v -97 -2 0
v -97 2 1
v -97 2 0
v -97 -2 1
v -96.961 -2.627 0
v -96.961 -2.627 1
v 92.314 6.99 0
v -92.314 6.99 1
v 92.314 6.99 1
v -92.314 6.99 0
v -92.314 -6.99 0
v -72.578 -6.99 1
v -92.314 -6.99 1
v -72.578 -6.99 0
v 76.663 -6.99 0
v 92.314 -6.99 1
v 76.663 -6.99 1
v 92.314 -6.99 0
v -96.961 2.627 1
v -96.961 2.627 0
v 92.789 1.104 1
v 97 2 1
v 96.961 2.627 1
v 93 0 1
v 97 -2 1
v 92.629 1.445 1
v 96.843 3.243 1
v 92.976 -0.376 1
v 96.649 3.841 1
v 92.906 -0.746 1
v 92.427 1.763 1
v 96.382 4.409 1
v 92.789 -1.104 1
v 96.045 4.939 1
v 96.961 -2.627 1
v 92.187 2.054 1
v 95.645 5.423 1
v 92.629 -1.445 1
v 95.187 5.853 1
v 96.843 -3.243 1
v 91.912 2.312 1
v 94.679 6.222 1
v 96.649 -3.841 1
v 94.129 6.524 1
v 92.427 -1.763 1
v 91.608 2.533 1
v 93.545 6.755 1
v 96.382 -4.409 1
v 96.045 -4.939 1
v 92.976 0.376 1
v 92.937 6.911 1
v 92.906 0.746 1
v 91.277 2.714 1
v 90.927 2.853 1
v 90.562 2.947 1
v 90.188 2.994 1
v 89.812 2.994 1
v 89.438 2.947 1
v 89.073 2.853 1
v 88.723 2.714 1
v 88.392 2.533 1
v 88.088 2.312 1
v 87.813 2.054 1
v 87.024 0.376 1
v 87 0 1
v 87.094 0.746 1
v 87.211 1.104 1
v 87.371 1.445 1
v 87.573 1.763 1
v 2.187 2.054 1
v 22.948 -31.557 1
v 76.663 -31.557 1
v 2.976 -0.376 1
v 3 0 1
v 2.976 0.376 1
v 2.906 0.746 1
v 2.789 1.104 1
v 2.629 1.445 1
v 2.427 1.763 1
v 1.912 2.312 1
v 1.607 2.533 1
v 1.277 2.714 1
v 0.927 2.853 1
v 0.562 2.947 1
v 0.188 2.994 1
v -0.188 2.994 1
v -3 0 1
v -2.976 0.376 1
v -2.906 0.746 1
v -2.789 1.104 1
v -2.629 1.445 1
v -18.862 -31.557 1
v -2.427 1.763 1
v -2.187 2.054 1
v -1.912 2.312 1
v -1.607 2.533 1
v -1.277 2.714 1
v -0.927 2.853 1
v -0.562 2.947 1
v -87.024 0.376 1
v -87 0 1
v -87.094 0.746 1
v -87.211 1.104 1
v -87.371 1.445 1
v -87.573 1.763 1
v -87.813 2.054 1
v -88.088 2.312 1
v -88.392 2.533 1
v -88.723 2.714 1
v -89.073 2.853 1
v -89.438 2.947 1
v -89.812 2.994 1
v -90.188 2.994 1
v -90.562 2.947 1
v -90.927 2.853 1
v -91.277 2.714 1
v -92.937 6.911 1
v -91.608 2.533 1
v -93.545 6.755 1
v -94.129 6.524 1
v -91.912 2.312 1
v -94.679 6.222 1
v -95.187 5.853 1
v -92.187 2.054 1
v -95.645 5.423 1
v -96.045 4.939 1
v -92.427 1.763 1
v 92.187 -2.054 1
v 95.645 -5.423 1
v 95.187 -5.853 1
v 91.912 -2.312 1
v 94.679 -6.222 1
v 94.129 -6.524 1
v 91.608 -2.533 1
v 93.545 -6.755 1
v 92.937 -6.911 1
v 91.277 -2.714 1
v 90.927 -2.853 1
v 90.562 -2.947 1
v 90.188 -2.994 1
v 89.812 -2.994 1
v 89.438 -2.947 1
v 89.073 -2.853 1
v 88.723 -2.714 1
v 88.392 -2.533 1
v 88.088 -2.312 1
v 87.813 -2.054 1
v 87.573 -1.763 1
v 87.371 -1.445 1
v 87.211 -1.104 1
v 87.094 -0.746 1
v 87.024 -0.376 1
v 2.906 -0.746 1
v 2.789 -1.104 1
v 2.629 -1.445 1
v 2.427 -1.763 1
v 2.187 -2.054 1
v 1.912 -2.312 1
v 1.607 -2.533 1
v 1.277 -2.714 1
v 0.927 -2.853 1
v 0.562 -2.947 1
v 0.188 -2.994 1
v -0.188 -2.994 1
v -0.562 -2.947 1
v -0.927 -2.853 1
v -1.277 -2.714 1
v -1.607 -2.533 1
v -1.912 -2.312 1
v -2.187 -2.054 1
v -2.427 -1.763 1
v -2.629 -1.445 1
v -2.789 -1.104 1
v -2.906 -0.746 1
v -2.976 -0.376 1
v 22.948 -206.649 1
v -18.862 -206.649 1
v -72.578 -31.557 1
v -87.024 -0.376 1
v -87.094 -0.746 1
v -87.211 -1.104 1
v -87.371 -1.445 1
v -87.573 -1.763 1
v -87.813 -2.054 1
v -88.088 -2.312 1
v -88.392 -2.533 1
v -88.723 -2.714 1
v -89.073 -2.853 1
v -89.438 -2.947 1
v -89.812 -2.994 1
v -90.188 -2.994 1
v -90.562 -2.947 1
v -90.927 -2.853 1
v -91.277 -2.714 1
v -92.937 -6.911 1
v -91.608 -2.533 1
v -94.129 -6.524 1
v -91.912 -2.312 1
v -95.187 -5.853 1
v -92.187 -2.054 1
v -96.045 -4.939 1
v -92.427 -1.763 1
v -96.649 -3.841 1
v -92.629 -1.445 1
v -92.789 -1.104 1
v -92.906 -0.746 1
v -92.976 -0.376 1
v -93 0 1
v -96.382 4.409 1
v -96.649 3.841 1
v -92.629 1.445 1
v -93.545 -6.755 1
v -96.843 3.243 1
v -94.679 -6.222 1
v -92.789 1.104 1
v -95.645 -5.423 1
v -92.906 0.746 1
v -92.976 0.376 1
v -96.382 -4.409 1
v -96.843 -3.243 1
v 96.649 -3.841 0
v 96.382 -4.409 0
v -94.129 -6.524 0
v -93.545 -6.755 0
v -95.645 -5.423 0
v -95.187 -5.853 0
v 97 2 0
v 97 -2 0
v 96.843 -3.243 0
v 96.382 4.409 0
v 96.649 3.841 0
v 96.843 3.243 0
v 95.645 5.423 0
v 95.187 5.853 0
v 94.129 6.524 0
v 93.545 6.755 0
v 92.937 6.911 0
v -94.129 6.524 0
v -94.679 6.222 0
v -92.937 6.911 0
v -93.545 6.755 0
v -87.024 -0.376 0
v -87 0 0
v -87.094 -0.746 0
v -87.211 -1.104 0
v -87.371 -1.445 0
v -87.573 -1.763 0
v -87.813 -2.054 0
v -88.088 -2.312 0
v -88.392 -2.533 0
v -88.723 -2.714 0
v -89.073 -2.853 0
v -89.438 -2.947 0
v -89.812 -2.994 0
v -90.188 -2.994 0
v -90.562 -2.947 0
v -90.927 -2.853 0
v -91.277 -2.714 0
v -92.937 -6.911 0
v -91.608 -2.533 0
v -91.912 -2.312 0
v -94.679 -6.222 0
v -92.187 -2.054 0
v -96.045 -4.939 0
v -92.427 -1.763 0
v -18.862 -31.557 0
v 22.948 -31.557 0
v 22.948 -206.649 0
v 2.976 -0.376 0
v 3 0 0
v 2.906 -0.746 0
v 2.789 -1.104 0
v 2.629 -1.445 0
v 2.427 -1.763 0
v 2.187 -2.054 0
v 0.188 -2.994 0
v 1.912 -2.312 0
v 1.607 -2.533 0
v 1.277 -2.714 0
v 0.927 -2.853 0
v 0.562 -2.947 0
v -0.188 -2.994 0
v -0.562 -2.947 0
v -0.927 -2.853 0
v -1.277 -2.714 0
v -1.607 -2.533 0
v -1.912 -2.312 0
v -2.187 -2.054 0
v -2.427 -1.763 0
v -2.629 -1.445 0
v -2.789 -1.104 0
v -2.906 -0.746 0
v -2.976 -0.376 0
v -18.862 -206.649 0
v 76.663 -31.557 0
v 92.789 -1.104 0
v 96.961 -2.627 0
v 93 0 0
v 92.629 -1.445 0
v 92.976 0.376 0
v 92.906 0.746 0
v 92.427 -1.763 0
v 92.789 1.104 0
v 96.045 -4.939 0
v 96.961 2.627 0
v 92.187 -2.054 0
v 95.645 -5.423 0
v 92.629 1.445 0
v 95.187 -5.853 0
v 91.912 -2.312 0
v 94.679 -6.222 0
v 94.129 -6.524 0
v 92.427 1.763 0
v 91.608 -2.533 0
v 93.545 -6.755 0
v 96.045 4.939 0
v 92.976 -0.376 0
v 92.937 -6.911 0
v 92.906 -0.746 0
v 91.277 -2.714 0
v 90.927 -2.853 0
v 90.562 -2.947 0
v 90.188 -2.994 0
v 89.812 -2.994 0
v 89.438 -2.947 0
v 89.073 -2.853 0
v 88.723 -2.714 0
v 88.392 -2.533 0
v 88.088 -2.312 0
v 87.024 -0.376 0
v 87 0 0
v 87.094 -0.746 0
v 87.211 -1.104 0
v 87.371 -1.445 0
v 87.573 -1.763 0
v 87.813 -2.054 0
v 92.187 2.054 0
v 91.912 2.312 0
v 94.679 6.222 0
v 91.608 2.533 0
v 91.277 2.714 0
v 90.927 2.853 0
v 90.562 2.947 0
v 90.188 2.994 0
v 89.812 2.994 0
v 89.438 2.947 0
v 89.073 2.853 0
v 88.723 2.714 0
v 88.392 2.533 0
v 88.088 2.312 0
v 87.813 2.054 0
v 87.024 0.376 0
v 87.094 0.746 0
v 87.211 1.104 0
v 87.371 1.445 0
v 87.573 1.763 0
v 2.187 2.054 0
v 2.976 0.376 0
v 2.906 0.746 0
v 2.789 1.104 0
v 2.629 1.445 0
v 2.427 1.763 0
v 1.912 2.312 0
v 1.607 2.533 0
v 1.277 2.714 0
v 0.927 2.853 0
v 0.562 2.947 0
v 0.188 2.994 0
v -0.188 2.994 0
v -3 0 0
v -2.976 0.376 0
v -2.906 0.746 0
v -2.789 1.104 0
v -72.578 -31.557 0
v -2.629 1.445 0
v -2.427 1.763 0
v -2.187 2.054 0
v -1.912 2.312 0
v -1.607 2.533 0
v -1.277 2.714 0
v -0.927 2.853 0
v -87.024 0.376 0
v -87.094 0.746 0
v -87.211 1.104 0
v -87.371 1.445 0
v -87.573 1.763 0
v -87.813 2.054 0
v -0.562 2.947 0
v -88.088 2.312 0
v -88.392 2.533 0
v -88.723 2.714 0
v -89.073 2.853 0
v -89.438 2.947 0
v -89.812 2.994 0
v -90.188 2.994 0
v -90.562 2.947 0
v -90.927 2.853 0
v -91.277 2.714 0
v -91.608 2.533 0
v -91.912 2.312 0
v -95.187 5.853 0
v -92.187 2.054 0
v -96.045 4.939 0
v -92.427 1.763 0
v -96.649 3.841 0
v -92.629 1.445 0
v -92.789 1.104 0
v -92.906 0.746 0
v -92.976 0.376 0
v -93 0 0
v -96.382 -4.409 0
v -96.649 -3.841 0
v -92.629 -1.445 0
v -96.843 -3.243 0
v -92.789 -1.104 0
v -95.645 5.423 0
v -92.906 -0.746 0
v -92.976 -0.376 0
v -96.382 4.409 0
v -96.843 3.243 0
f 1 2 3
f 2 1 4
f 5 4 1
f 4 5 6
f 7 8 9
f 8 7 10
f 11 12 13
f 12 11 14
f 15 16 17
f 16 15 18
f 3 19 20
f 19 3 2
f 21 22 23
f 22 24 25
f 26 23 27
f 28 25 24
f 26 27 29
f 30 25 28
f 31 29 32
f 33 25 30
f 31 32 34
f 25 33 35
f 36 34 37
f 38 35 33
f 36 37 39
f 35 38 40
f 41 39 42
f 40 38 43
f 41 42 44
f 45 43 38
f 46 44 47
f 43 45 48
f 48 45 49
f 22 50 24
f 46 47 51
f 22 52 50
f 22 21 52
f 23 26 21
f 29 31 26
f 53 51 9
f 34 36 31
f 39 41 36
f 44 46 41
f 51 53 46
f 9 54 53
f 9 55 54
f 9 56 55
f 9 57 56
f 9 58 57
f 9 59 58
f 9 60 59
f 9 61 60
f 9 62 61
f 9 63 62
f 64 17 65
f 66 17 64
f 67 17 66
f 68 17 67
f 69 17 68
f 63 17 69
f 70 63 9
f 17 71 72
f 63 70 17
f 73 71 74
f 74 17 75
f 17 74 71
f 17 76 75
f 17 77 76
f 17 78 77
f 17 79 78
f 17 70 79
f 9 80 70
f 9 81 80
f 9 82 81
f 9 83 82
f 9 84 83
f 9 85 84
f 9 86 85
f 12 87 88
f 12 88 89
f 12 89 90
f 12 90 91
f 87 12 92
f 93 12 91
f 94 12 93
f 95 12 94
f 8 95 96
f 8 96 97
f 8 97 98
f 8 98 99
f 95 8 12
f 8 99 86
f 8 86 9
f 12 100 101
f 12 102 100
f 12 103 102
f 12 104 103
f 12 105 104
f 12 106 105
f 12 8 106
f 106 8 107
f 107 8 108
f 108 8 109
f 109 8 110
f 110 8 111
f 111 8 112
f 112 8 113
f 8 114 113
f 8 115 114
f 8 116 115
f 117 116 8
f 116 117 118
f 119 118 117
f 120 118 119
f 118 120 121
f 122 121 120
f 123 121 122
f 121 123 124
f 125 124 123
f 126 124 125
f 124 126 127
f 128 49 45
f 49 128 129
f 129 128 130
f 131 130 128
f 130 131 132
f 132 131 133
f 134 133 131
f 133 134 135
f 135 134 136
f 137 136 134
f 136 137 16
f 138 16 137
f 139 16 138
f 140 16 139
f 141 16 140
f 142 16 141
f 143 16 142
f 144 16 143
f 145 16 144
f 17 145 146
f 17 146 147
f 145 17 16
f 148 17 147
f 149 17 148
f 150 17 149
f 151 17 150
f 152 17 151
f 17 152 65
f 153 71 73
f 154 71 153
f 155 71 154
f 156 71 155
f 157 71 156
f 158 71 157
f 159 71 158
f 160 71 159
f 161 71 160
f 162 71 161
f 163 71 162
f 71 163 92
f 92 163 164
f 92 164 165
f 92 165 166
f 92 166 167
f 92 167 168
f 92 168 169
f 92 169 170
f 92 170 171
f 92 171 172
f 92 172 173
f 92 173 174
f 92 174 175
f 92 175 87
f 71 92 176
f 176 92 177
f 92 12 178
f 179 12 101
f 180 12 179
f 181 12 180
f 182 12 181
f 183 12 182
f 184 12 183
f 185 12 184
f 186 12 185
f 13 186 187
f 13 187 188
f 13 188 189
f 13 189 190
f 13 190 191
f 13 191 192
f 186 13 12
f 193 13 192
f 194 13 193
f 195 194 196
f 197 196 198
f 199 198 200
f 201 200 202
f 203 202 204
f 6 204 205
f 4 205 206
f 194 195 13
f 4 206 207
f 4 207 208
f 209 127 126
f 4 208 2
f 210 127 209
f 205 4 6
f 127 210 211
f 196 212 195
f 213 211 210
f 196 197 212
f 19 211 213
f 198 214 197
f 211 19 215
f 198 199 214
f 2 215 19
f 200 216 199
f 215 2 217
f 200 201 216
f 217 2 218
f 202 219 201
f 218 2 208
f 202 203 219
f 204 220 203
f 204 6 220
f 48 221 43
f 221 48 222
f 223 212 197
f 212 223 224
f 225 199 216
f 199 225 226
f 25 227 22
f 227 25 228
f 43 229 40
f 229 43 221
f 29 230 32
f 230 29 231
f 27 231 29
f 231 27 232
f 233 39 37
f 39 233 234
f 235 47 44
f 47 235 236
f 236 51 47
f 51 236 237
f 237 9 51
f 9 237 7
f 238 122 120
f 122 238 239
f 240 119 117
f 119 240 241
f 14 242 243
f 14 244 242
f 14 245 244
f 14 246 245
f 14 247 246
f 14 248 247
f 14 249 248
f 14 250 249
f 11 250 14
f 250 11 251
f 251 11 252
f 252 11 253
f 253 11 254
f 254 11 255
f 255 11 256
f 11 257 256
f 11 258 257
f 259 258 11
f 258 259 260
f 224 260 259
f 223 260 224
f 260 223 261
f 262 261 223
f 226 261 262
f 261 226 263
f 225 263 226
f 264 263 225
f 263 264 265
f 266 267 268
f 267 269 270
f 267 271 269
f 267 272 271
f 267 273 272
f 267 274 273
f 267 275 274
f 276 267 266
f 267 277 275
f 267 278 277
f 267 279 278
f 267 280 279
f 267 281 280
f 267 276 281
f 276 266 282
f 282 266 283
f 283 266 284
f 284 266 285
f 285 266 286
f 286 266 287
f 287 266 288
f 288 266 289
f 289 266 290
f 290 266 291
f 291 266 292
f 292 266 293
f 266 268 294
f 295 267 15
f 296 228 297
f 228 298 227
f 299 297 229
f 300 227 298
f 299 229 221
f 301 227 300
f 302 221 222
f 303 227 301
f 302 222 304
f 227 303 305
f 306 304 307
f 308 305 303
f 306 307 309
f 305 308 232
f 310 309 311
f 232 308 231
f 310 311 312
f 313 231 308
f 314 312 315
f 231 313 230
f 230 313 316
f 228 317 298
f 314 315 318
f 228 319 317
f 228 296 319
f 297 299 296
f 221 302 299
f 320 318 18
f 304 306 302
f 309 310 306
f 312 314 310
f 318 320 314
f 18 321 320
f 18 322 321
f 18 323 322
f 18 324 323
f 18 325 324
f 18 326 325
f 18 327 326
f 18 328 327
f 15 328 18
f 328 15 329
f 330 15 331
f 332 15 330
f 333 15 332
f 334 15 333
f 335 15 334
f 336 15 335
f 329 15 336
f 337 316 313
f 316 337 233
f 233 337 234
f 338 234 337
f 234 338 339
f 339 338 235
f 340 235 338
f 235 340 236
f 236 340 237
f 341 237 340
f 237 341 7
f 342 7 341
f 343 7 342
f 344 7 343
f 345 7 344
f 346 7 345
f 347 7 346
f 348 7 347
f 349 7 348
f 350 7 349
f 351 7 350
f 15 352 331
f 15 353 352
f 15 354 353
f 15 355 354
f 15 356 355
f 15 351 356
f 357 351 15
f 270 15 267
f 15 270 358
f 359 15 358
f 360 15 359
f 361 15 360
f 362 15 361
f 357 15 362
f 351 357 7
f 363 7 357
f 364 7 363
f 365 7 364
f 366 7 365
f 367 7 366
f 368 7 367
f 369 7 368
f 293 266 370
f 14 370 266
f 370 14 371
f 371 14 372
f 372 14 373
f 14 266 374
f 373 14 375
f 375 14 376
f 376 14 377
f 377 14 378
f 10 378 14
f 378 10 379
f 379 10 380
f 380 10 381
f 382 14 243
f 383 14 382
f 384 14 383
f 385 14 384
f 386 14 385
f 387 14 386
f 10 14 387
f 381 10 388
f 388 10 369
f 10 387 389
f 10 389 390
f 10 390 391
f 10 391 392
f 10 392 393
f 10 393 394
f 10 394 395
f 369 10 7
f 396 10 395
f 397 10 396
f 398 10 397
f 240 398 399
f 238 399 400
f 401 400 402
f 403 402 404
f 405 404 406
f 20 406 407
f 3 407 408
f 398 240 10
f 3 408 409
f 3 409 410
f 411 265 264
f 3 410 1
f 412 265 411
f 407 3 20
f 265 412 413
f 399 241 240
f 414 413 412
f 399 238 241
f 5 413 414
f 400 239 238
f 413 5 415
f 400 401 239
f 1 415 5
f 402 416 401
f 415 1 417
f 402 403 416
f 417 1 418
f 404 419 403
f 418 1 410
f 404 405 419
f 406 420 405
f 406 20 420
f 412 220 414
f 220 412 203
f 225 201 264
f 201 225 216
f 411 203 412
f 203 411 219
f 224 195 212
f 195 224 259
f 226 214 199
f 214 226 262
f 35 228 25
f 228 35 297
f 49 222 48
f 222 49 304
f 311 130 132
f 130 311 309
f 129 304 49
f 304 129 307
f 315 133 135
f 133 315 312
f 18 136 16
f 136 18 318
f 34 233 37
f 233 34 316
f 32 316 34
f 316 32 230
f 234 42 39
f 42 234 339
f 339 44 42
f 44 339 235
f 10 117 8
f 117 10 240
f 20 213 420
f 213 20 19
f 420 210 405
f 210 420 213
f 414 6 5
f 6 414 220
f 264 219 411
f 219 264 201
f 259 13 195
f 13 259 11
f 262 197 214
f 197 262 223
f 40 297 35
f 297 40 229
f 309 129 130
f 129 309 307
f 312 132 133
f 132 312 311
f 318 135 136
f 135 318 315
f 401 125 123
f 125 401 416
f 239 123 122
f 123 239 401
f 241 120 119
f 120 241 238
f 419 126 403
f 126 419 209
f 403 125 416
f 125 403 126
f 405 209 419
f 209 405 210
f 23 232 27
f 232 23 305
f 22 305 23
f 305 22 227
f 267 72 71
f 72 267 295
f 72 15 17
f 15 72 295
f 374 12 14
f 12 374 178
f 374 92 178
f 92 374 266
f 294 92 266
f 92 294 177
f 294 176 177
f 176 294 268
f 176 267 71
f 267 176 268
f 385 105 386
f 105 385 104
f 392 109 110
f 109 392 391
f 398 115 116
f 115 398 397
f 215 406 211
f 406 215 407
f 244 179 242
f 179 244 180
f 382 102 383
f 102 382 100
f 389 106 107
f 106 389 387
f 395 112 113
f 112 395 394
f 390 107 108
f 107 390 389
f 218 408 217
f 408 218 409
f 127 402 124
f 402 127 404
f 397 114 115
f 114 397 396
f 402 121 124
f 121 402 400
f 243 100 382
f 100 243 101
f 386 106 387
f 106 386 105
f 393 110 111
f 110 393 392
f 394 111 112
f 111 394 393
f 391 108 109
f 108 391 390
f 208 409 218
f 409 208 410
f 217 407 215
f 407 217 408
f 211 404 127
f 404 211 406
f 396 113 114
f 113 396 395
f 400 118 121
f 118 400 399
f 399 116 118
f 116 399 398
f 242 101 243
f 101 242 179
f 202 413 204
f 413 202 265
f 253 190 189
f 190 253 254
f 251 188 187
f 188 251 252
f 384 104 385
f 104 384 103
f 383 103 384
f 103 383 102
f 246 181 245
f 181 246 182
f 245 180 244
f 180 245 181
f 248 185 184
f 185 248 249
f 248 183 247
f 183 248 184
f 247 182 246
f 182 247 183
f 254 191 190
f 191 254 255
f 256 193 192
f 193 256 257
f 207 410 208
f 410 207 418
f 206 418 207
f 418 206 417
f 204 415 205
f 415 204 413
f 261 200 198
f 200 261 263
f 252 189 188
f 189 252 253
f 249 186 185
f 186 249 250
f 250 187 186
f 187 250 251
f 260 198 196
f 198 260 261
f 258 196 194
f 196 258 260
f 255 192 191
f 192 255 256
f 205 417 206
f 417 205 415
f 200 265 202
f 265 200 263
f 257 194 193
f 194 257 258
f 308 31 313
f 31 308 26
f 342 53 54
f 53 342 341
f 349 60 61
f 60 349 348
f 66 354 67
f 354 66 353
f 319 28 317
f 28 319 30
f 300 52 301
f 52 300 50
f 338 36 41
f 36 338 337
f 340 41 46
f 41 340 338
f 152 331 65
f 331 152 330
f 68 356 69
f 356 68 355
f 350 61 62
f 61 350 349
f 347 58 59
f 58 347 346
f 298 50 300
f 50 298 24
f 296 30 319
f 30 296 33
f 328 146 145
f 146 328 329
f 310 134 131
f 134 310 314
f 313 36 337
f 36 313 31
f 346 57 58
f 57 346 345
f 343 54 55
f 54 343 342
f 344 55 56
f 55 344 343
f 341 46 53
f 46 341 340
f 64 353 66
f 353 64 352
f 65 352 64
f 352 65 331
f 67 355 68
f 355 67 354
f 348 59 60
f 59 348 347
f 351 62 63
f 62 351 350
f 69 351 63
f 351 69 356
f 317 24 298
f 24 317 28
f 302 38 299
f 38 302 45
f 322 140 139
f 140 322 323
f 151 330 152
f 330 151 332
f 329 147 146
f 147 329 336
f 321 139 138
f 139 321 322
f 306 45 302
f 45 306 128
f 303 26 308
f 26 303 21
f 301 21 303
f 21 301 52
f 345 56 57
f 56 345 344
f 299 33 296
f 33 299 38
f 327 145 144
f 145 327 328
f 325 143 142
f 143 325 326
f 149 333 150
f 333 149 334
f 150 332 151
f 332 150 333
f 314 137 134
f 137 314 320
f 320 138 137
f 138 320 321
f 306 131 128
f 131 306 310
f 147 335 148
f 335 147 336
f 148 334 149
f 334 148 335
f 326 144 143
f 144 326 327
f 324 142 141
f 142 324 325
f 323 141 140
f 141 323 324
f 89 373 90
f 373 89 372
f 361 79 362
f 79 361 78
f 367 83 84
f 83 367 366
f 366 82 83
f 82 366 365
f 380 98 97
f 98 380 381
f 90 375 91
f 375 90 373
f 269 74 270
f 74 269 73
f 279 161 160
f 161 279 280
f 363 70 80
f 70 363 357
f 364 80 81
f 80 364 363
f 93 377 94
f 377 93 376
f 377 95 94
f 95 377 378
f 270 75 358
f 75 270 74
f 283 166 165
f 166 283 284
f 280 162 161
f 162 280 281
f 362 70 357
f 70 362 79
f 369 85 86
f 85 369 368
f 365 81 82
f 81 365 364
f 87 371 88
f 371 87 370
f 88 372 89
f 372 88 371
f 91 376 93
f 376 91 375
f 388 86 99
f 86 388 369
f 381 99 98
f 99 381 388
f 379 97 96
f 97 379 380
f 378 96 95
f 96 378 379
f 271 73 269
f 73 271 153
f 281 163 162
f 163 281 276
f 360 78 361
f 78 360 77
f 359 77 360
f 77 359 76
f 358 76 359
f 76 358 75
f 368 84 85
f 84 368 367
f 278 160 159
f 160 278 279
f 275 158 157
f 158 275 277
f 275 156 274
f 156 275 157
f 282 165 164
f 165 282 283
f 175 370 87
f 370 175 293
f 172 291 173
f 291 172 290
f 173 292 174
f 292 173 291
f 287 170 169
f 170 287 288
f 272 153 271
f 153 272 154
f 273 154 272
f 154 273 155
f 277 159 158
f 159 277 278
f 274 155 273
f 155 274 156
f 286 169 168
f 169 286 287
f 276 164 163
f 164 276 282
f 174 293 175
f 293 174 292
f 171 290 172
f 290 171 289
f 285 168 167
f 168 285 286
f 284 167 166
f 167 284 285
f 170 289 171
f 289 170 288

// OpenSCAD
$fn = 50;


difference() {
	union() {
		translate(v = [0, 0, 0]) {
			rotate(a = [0, 0, 0]) {
				hull() {
					translate(v = [-92.0000000000, 2.0000000000, 0]) {
						rotate(a = [0, 0, 0]) {
							translate(v = [0, 0, 0]) {
								rotate(a = [0, 0, 0]) {
									cylinder(h = 1, r = 5);
								}
							}
						}
					}
					translate(v = [92.0000000000, 2.0000000000, 0]) {
						rotate(a = [0, 0, 0]) {
							translate(v = [0, 0, 0]) {
								rotate(a = [0, 0, 0]) {
									cylinder(h = 1, r = 5);
								}
							}
						}
					}
					translate(v = [-92.0000000000, -2.0000000000, 0]) {
						rotate(a = [0, 0, 0]) {
							translate(v = [0, 0, 0]) {
								rotate(a = [0, 0, 0]) {
									cylinder(h = 1, r = 5);
								}
							}
						}
					}
					translate(v = [92.0000000000, -2.0000000000, 0]) {
						rotate(a = [0, 0, 0]) {
							translate(v = [0, 0, 0]) {
								rotate(a = [0, 0, 0]) {
									cylinder(h = 1, r = 5);
								}
							}
						}
					}
				}
			}
		}
		translate(v = [0, 0, 0]) {
			rotate(a = [0, 0, 0]) {
				linear_extrude(height = 1) {
					text(font = "DejaVu Sans Mono:style=Bold", halign = "center", size = 209.0000000000, text = "T", valign = "top");
				}
			}
		}
	}
	union() {
		translate(v = [-90.0000000000, 0.0000000000, -125.0000000000]) {
			rotate(a = [0, 0, 0]) {
				cylinder(h = 250, r = 3.0000000000);
			}
		}
		translate(v = [90.0000000000, 0.0000000000, -125.0000000000]) {
			rotate(a = [0, 0, 0]) {
				cylinder(h = 250, r = 3.0000000000);
			}
		}
		translate(v = [90.0000000000, 0.0000000000, -125.0000000000]) {
			rotate(a = [0, 0, 0]) {
				cylinder(h = 250, r = 3.0000000000);
			}
		}
		translate(v = [0, 0, -125.0000000000]) {
			rotate(a = [0, 0, 0]) {
				cylinder(h = 250, r = 3.0000000000);
			}
		}
	}
}
